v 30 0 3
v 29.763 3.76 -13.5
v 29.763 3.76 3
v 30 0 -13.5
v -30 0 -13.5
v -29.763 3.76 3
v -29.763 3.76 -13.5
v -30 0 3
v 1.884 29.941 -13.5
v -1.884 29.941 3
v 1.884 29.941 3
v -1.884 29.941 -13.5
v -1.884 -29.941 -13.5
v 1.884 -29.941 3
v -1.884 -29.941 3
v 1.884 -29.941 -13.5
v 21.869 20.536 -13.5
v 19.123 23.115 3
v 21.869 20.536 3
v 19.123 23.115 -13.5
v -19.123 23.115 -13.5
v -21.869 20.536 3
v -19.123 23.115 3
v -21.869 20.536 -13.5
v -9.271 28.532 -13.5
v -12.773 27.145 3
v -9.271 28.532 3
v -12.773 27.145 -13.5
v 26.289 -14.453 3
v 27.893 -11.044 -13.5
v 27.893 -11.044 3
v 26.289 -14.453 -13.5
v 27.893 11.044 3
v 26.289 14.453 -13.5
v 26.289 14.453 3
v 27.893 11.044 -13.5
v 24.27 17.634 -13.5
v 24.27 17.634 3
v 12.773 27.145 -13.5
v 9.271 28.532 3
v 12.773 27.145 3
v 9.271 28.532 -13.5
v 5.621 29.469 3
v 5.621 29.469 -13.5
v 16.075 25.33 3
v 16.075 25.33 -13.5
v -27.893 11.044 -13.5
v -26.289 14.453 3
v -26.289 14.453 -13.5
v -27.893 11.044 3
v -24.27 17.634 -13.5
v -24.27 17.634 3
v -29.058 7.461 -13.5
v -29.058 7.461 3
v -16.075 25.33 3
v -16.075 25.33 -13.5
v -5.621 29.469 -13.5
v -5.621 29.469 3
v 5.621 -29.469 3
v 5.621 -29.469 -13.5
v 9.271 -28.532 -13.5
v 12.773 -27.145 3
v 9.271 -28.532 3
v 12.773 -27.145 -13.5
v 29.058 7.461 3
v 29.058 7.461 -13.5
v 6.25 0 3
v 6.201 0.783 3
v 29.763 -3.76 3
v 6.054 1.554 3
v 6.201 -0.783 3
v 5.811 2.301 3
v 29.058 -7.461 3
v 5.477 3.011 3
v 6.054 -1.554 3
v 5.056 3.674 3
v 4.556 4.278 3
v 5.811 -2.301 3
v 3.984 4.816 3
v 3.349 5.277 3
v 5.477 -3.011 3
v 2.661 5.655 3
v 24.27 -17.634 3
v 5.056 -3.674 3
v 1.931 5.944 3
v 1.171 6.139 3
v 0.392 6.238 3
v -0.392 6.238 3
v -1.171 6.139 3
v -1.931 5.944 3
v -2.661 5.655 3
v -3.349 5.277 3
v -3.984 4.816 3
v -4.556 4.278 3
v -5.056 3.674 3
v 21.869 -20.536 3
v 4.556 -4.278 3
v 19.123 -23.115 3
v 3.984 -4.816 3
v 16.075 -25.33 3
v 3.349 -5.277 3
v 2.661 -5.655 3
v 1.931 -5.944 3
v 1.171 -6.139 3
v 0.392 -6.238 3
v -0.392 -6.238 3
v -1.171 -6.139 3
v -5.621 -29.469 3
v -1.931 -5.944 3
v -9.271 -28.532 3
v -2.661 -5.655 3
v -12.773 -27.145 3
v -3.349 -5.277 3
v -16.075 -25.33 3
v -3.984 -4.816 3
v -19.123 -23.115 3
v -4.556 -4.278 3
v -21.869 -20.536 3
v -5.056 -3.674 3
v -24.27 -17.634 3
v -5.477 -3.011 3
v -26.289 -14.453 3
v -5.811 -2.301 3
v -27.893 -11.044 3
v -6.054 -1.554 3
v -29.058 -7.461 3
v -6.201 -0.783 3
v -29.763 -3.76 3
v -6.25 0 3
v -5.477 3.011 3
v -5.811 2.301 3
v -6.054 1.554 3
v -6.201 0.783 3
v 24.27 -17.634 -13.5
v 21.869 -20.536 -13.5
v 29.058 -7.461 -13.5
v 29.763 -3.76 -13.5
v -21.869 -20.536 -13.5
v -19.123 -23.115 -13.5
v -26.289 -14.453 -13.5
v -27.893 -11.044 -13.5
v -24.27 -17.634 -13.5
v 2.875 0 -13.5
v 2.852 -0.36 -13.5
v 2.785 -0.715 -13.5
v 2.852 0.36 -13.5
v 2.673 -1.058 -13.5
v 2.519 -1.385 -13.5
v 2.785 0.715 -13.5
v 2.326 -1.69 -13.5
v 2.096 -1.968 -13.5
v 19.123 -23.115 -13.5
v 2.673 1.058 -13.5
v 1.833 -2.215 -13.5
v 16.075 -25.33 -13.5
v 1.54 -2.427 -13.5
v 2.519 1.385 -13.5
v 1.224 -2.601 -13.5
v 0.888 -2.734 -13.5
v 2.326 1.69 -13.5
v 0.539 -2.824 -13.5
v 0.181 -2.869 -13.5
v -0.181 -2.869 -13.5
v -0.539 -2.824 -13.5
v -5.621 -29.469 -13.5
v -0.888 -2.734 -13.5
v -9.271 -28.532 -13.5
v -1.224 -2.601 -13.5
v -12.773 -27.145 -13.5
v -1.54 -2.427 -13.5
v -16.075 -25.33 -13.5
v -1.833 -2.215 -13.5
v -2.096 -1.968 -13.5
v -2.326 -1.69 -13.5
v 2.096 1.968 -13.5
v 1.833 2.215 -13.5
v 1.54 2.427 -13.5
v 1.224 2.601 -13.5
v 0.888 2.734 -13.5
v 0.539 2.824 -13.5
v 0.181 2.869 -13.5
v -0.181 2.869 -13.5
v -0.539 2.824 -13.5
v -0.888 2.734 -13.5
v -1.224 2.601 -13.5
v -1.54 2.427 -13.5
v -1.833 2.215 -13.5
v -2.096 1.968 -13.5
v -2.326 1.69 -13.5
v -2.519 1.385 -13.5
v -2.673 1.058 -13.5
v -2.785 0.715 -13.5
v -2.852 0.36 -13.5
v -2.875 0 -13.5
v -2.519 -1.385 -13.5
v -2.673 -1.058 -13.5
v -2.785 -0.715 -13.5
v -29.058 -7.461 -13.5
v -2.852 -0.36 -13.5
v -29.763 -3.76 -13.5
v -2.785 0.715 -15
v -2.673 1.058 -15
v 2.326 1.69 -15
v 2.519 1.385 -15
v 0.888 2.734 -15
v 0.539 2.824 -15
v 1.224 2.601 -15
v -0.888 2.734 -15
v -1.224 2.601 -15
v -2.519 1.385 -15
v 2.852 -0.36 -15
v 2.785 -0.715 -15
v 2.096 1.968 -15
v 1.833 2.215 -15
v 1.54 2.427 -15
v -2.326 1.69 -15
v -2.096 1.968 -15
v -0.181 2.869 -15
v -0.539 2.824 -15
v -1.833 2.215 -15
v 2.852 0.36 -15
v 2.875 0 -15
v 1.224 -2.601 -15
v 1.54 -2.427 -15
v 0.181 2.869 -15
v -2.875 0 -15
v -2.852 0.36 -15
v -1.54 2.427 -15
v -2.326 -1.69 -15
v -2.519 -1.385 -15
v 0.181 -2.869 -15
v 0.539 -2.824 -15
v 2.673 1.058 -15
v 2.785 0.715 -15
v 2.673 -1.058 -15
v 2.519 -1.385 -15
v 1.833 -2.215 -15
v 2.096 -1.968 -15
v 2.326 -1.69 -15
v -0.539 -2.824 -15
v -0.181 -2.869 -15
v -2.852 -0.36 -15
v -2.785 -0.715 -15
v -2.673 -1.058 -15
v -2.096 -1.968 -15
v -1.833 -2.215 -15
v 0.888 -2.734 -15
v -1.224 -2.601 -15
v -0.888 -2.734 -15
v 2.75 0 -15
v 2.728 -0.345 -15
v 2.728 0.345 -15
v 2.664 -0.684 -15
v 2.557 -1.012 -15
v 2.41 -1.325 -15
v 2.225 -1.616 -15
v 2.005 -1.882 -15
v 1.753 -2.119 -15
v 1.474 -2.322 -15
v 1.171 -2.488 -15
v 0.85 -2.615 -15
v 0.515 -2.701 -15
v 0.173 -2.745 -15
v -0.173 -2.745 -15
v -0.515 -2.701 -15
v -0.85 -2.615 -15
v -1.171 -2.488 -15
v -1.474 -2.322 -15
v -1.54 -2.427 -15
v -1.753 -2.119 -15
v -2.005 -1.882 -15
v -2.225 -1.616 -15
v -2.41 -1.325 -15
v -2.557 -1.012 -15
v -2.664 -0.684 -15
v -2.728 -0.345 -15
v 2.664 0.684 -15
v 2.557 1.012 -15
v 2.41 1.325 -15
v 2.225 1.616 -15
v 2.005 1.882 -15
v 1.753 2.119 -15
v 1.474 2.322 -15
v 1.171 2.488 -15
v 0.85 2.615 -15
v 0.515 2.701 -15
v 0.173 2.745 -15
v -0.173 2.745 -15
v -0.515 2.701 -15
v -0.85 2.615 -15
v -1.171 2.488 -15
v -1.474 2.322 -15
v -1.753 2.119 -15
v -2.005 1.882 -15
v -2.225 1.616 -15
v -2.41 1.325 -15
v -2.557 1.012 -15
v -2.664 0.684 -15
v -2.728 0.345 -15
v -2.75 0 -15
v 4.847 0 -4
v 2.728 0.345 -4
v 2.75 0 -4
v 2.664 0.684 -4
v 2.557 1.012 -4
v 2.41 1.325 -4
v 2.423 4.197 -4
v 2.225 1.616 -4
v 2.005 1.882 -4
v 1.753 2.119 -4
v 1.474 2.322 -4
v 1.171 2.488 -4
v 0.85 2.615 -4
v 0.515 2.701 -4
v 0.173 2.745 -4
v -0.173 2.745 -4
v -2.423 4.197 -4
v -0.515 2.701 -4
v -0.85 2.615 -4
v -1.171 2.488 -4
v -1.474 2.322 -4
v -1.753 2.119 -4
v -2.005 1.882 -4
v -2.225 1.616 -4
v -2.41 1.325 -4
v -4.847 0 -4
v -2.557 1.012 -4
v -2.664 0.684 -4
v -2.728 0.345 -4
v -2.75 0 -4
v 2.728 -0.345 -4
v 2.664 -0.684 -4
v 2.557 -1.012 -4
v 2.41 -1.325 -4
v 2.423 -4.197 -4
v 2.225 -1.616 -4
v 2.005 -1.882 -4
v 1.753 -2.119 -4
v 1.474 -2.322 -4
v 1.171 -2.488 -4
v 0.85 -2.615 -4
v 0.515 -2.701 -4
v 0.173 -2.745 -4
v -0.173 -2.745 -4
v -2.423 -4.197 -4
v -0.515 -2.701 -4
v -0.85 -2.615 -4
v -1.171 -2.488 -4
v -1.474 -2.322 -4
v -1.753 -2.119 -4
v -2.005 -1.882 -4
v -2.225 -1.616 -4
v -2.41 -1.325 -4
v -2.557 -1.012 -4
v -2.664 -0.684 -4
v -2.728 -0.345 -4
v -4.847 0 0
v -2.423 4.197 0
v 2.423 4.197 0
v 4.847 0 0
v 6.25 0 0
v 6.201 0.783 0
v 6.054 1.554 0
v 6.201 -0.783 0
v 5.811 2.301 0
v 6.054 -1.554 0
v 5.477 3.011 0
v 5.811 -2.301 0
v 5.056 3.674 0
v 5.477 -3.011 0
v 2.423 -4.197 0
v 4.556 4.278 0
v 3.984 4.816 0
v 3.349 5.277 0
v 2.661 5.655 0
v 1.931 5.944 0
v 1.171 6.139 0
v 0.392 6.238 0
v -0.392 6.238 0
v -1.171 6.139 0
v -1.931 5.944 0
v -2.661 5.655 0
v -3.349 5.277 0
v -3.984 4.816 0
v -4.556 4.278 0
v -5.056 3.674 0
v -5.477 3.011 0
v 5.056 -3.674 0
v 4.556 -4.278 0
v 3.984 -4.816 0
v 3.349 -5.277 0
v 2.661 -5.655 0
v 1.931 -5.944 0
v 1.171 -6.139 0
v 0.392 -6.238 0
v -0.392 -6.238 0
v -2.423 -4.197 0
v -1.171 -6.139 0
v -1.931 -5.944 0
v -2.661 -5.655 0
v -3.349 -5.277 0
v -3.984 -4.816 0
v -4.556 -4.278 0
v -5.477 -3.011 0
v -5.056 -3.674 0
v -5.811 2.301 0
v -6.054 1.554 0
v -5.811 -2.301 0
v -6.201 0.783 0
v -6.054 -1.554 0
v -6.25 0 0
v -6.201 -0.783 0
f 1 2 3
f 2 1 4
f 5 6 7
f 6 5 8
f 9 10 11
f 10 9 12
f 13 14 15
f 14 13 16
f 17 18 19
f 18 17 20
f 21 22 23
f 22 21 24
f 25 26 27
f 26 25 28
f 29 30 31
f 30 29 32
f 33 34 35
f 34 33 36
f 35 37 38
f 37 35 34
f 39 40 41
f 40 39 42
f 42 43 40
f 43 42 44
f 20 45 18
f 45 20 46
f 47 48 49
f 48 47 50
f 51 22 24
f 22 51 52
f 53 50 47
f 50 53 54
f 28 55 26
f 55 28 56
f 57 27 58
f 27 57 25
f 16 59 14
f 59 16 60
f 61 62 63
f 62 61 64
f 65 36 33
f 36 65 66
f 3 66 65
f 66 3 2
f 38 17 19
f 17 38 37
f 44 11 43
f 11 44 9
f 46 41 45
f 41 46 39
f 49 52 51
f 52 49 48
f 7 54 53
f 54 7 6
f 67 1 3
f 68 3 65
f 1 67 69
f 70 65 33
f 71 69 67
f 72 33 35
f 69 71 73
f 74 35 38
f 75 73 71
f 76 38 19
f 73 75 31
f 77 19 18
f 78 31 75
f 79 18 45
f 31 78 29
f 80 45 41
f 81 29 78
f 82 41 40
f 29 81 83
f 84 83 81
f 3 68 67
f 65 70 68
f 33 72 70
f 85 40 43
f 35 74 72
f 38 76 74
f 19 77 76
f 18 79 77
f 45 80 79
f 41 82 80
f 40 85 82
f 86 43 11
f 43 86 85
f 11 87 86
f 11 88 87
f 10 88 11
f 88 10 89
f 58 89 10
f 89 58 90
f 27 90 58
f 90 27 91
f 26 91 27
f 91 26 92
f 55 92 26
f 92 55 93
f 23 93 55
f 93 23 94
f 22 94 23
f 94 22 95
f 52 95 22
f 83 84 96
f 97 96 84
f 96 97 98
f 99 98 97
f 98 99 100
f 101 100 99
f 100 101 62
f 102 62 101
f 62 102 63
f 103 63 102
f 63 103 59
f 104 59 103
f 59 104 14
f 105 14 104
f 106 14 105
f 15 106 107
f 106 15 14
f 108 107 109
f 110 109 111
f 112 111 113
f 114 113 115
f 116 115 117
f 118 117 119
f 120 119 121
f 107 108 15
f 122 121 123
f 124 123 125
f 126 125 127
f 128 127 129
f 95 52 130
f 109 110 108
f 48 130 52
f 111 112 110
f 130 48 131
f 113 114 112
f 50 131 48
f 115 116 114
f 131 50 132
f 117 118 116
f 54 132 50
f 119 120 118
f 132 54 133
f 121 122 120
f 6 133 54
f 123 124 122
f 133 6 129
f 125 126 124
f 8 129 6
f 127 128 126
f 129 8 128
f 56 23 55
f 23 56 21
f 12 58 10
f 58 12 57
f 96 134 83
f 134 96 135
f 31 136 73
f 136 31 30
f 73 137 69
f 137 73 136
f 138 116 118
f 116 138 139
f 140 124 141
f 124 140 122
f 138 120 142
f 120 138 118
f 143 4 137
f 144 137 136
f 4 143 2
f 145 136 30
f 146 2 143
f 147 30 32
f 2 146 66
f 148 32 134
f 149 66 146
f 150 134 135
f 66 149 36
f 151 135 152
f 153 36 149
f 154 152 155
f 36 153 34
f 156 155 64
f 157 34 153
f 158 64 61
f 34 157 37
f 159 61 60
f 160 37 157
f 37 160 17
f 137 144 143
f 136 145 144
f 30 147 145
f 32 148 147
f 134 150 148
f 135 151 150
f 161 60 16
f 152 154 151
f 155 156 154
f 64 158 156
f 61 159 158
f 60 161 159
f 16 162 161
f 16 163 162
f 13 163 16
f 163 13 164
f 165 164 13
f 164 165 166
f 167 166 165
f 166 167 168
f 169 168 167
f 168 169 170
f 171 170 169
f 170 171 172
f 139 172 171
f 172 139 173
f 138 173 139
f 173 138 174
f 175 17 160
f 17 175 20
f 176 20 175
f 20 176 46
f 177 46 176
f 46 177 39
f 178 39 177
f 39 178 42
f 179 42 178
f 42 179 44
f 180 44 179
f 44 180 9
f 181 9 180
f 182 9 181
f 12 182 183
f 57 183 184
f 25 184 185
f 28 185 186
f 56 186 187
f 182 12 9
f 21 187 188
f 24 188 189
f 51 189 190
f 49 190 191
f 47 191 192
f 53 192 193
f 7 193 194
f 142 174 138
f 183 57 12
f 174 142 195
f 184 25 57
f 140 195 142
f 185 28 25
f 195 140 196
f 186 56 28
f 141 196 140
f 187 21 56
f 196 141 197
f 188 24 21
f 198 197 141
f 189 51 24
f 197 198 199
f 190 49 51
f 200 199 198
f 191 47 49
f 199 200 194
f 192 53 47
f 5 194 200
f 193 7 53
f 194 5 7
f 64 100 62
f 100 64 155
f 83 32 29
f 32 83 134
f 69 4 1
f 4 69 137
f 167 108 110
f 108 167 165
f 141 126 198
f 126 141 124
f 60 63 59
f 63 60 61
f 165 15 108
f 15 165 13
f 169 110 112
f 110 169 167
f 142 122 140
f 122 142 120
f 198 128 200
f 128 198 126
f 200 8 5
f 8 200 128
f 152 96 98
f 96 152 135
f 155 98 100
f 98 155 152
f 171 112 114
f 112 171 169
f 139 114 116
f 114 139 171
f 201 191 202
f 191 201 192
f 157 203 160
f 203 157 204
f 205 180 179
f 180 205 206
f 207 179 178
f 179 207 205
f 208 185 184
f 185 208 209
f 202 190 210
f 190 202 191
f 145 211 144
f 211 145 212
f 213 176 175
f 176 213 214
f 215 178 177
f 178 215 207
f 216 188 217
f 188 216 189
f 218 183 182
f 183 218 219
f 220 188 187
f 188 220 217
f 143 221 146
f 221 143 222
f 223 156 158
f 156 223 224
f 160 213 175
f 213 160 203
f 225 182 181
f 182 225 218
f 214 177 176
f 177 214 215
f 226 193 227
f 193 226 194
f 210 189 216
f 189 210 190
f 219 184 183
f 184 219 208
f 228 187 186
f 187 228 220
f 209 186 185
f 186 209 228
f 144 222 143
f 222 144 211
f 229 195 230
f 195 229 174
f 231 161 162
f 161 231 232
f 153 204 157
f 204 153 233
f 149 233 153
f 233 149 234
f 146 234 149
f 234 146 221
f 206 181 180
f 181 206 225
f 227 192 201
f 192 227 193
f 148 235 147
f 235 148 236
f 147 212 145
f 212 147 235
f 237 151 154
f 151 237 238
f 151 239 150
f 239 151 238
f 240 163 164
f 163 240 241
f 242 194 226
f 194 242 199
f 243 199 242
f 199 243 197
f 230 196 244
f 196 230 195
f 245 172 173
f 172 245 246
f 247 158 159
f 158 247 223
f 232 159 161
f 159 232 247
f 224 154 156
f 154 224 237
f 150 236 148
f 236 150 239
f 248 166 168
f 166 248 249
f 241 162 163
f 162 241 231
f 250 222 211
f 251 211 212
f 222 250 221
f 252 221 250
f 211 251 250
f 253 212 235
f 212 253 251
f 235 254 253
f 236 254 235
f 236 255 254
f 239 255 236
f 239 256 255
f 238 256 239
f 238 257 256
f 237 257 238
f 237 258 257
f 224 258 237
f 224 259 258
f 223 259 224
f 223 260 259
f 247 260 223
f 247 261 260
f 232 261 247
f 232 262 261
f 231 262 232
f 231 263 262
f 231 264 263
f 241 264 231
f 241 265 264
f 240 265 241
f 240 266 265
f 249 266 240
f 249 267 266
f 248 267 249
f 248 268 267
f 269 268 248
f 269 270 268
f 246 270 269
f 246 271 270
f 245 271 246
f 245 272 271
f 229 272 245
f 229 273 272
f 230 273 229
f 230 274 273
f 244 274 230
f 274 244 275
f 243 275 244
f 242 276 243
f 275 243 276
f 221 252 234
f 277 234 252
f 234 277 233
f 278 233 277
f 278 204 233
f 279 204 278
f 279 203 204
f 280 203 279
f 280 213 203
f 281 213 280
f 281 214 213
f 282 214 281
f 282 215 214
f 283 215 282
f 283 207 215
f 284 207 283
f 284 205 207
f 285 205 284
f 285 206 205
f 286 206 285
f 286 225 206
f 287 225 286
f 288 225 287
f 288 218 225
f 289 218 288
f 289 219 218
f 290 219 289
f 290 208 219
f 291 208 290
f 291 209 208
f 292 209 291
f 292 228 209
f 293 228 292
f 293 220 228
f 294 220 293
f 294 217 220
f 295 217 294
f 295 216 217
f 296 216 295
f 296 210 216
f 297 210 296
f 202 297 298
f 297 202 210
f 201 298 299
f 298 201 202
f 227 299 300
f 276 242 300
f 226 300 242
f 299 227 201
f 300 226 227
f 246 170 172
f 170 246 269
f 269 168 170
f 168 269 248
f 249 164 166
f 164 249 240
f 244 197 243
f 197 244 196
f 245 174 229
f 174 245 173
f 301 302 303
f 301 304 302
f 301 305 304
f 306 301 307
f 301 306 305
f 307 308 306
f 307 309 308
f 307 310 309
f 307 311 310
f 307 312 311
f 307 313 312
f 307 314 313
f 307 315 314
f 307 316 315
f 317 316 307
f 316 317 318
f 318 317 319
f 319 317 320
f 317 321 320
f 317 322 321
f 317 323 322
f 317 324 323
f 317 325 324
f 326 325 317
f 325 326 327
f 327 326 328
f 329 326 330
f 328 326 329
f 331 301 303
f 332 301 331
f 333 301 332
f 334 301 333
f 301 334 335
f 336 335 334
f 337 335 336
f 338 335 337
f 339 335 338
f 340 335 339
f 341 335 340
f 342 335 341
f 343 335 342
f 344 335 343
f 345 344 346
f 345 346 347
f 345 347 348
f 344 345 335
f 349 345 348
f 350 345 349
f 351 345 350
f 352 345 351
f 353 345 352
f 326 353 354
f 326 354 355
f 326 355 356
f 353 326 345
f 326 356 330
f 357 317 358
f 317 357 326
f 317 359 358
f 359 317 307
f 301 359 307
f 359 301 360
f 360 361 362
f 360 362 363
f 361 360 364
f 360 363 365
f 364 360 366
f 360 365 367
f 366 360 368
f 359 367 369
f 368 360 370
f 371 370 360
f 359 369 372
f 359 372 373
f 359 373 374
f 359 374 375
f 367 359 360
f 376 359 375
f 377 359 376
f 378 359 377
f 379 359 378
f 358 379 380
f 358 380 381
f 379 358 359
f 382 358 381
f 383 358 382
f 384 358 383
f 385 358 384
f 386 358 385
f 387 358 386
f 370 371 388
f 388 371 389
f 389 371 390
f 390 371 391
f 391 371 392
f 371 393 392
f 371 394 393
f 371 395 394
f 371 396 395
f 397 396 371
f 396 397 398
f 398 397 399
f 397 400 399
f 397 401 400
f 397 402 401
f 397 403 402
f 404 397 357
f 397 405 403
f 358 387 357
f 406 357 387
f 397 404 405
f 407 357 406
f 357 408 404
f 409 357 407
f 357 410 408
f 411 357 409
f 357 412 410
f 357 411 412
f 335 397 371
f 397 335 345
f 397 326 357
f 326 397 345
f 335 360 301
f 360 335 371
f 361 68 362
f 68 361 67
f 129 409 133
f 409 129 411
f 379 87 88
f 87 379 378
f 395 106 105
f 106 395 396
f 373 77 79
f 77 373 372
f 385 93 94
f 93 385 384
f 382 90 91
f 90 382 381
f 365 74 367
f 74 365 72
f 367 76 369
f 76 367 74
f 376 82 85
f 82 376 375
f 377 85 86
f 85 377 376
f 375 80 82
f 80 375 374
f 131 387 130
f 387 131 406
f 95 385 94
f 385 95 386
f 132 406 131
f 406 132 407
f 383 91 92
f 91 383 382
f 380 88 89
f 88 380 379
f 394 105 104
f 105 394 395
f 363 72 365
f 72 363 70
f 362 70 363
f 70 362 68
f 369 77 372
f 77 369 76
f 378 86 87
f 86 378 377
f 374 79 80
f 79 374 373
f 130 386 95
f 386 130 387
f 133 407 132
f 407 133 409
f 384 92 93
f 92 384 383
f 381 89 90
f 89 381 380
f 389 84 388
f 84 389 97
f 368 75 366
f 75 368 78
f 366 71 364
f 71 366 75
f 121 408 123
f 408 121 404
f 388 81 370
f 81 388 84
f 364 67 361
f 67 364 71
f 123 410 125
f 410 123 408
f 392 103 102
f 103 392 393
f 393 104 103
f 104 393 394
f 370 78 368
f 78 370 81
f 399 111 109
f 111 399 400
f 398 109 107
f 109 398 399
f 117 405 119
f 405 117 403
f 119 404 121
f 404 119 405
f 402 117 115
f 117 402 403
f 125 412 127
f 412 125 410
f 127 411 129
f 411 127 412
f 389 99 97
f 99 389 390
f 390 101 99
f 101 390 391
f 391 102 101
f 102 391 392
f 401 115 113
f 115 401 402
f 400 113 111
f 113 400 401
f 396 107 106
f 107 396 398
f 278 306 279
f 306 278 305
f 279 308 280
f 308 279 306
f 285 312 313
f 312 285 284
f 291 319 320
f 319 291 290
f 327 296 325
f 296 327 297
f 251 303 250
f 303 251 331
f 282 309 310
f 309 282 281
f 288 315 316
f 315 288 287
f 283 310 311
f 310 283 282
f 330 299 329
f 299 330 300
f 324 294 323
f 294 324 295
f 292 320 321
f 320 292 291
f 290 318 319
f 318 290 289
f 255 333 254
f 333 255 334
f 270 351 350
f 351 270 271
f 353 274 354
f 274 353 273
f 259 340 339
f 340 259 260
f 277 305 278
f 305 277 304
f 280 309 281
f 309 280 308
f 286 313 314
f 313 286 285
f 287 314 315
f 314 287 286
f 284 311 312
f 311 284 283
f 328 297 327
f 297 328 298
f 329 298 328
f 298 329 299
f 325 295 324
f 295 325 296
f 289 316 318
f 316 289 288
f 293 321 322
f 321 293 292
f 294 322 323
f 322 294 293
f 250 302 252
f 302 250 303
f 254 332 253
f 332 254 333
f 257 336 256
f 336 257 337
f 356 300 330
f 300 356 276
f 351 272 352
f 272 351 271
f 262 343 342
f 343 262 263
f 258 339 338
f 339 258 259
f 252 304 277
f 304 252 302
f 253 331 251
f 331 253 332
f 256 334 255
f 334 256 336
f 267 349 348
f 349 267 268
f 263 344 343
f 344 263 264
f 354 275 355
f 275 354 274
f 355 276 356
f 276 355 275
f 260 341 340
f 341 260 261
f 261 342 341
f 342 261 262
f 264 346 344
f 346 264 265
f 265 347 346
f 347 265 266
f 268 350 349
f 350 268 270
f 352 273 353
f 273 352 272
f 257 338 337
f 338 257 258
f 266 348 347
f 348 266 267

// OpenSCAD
$fn = 50;


difference() {
	union() {
		translate(v = [0, 0, -13.5000000000]) {
			cylinder(h = 16.5000000000, r = 30.0000000000);
		}
		#translate(v = [0, 0, -15.0000000000]) {
			cylinder(h = 15, r = 2.8750000000);
		}
	}
	union() {
		translate(v = [0, 0, 0]) {
			rotate(a = [0, 0, 0]) {
				difference() {
					union() {
						translate(v = [0, 0, -4]) {
							linear_extrude(height = 4) {
								polygon(points = [[4.8468000000, 0.0000000000], [2.4234000000, 4.1974519271], [-2.4234000000, 4.1974519271], [-4.8468000000, 0.0000000000], [-2.4234000000, -4.1974519271], [2.4234000000, -4.1974519271]]);
							}
						}
					}
					union();
				}
			}
		}
		#cylinder(h = 3, r = 6.2500000000);
		#translate(v = [0, 0, -100.0000000000]) {
			cylinder(h = 200, r = 2.7500000000);
		}
	}
}
